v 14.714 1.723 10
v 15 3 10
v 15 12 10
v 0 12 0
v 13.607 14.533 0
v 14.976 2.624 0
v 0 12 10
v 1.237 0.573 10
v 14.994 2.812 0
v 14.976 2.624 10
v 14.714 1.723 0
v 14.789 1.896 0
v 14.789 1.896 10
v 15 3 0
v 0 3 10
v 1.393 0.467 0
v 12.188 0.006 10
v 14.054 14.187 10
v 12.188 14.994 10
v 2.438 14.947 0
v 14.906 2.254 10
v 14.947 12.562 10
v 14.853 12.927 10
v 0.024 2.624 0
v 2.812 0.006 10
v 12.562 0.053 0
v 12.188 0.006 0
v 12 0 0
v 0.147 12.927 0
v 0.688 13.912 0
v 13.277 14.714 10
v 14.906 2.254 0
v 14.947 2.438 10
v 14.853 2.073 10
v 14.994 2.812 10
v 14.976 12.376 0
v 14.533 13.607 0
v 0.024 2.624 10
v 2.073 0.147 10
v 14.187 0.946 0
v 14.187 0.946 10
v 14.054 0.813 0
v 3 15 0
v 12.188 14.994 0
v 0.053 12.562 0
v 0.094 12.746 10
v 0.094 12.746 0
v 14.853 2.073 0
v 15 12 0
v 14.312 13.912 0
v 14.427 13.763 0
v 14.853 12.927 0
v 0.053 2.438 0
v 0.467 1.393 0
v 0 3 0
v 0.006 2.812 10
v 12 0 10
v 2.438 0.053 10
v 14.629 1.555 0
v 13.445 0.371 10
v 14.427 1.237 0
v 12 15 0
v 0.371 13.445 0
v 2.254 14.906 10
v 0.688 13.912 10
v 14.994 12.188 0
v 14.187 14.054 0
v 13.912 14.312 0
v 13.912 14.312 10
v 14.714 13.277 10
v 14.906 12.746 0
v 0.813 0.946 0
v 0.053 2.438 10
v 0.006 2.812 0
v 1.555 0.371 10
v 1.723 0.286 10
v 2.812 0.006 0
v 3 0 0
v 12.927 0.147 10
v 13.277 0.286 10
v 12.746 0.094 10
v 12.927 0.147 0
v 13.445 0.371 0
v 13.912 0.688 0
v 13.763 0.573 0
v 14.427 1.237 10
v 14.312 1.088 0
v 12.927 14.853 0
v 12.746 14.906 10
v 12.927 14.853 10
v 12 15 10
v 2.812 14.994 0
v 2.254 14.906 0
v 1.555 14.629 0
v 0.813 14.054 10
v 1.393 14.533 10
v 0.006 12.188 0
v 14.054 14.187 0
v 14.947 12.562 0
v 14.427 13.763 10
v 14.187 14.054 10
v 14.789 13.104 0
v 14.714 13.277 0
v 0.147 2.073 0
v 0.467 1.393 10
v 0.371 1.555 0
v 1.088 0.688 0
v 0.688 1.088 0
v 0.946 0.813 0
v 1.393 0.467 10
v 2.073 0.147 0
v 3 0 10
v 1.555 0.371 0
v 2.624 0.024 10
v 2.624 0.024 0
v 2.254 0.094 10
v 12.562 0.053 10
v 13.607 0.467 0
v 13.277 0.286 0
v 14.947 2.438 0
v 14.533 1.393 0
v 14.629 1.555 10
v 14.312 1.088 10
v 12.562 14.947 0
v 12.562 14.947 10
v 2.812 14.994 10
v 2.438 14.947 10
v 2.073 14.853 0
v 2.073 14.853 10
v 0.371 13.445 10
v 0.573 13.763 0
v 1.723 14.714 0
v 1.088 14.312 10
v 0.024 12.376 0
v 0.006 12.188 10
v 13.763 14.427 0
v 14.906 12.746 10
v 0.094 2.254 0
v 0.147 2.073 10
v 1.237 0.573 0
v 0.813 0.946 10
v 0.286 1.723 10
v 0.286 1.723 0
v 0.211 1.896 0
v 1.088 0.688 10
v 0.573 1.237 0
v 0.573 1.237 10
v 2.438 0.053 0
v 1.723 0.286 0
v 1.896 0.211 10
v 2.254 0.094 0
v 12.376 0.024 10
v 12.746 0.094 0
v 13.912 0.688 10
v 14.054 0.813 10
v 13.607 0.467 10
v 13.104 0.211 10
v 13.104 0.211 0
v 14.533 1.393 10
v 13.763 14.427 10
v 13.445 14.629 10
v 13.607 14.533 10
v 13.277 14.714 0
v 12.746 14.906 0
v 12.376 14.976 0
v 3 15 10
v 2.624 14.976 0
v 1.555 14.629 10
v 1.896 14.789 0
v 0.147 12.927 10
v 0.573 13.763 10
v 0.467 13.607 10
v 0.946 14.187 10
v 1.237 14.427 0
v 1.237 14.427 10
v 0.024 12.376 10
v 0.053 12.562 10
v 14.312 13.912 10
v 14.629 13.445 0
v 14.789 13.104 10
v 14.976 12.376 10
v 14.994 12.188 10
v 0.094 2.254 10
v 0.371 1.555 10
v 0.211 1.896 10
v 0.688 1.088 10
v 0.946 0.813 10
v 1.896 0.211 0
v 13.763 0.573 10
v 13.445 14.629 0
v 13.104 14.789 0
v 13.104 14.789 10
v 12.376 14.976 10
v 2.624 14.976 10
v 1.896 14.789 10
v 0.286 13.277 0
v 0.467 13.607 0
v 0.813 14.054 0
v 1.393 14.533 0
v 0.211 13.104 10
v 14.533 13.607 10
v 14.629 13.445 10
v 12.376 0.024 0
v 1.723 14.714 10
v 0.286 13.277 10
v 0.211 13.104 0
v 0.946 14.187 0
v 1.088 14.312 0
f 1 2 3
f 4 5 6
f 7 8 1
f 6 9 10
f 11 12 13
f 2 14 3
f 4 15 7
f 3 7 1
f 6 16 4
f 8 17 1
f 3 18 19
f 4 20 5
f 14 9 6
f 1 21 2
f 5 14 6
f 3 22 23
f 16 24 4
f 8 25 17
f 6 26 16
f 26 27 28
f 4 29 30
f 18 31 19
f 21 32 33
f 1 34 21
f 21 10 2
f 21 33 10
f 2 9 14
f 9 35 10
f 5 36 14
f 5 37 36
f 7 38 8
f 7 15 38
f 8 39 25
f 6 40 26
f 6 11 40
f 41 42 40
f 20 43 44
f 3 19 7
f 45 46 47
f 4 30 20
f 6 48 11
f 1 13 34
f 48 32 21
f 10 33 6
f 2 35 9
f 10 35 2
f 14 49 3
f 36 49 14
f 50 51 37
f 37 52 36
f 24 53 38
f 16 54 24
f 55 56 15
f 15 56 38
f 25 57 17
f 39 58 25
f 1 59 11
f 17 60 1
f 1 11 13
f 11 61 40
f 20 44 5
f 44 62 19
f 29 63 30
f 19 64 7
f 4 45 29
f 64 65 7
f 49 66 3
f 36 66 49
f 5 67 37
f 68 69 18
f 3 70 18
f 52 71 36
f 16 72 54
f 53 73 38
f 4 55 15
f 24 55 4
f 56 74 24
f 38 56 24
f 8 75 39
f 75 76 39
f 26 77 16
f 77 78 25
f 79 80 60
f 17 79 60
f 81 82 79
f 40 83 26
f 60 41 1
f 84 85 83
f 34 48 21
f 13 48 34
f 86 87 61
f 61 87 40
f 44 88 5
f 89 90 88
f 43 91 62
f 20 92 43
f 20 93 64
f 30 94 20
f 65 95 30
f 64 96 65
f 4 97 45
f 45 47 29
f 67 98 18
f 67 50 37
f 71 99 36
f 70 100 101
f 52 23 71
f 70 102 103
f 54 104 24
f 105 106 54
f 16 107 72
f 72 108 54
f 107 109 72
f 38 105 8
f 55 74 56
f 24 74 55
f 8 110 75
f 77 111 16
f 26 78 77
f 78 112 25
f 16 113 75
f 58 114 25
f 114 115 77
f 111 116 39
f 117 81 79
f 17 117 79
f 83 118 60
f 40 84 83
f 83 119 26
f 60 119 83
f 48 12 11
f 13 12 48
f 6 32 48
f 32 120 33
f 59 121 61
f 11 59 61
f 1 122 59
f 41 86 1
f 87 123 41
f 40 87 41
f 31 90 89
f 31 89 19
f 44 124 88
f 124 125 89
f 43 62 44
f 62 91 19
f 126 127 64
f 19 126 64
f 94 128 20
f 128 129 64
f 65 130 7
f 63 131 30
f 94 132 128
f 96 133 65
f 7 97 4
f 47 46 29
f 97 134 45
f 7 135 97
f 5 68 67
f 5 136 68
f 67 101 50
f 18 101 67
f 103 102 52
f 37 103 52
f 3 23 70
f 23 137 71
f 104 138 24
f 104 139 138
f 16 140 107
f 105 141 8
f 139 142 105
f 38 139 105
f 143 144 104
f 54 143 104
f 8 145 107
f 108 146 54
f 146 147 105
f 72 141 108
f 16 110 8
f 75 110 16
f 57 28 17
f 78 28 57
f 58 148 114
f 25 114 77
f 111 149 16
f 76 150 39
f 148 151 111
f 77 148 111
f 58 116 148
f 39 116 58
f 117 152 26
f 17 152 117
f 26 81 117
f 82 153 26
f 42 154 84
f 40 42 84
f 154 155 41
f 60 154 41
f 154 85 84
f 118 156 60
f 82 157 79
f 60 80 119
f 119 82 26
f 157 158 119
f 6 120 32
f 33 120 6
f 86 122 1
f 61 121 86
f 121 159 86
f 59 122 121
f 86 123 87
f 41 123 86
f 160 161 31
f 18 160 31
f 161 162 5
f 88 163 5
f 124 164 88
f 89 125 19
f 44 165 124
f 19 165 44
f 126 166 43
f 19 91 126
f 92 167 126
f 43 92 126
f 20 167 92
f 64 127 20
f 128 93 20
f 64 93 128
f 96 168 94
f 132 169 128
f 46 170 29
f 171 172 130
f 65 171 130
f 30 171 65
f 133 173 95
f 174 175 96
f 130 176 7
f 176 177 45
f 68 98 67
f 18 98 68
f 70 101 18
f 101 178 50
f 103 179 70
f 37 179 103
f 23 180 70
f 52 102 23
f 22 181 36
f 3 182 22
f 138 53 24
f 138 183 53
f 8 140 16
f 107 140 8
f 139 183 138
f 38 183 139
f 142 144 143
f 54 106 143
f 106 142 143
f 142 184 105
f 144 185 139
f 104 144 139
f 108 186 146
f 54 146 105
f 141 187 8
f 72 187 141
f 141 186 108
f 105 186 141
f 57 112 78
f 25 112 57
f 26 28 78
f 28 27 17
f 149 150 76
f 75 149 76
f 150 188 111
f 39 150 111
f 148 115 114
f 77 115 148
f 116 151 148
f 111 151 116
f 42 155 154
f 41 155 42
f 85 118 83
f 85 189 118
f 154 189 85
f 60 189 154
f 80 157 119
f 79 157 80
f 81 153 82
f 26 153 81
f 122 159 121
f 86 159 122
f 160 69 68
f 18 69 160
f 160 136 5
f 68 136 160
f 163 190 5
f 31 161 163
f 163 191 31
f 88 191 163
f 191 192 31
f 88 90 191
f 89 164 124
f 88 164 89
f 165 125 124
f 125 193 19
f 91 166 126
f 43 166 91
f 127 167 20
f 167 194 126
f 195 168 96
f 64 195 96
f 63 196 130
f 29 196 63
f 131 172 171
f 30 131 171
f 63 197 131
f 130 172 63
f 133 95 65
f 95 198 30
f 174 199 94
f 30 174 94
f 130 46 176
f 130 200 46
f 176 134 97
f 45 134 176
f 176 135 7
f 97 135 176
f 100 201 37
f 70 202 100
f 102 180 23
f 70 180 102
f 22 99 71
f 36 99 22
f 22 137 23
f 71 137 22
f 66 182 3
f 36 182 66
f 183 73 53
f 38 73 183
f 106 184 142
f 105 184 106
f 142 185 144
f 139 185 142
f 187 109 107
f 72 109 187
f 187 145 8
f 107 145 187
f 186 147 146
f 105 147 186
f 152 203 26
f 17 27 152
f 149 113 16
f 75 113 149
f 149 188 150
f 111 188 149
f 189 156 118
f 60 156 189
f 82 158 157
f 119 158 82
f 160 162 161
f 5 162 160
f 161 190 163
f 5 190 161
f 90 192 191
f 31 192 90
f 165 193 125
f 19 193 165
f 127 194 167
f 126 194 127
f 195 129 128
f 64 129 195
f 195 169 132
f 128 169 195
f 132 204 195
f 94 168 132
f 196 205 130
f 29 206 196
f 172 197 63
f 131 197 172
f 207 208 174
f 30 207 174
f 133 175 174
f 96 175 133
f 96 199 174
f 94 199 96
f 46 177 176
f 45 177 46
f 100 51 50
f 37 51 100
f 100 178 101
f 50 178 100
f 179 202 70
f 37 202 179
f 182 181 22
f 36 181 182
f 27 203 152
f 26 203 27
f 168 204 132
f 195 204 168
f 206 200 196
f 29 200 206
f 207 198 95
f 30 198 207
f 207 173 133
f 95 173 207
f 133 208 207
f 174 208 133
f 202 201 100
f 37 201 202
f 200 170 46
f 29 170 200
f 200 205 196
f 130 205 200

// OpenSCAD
translate([3,3,0])
minkowski()
{
    cylinder(1,3,3);
    cube([9,9,9]);
}
$fn=100;
